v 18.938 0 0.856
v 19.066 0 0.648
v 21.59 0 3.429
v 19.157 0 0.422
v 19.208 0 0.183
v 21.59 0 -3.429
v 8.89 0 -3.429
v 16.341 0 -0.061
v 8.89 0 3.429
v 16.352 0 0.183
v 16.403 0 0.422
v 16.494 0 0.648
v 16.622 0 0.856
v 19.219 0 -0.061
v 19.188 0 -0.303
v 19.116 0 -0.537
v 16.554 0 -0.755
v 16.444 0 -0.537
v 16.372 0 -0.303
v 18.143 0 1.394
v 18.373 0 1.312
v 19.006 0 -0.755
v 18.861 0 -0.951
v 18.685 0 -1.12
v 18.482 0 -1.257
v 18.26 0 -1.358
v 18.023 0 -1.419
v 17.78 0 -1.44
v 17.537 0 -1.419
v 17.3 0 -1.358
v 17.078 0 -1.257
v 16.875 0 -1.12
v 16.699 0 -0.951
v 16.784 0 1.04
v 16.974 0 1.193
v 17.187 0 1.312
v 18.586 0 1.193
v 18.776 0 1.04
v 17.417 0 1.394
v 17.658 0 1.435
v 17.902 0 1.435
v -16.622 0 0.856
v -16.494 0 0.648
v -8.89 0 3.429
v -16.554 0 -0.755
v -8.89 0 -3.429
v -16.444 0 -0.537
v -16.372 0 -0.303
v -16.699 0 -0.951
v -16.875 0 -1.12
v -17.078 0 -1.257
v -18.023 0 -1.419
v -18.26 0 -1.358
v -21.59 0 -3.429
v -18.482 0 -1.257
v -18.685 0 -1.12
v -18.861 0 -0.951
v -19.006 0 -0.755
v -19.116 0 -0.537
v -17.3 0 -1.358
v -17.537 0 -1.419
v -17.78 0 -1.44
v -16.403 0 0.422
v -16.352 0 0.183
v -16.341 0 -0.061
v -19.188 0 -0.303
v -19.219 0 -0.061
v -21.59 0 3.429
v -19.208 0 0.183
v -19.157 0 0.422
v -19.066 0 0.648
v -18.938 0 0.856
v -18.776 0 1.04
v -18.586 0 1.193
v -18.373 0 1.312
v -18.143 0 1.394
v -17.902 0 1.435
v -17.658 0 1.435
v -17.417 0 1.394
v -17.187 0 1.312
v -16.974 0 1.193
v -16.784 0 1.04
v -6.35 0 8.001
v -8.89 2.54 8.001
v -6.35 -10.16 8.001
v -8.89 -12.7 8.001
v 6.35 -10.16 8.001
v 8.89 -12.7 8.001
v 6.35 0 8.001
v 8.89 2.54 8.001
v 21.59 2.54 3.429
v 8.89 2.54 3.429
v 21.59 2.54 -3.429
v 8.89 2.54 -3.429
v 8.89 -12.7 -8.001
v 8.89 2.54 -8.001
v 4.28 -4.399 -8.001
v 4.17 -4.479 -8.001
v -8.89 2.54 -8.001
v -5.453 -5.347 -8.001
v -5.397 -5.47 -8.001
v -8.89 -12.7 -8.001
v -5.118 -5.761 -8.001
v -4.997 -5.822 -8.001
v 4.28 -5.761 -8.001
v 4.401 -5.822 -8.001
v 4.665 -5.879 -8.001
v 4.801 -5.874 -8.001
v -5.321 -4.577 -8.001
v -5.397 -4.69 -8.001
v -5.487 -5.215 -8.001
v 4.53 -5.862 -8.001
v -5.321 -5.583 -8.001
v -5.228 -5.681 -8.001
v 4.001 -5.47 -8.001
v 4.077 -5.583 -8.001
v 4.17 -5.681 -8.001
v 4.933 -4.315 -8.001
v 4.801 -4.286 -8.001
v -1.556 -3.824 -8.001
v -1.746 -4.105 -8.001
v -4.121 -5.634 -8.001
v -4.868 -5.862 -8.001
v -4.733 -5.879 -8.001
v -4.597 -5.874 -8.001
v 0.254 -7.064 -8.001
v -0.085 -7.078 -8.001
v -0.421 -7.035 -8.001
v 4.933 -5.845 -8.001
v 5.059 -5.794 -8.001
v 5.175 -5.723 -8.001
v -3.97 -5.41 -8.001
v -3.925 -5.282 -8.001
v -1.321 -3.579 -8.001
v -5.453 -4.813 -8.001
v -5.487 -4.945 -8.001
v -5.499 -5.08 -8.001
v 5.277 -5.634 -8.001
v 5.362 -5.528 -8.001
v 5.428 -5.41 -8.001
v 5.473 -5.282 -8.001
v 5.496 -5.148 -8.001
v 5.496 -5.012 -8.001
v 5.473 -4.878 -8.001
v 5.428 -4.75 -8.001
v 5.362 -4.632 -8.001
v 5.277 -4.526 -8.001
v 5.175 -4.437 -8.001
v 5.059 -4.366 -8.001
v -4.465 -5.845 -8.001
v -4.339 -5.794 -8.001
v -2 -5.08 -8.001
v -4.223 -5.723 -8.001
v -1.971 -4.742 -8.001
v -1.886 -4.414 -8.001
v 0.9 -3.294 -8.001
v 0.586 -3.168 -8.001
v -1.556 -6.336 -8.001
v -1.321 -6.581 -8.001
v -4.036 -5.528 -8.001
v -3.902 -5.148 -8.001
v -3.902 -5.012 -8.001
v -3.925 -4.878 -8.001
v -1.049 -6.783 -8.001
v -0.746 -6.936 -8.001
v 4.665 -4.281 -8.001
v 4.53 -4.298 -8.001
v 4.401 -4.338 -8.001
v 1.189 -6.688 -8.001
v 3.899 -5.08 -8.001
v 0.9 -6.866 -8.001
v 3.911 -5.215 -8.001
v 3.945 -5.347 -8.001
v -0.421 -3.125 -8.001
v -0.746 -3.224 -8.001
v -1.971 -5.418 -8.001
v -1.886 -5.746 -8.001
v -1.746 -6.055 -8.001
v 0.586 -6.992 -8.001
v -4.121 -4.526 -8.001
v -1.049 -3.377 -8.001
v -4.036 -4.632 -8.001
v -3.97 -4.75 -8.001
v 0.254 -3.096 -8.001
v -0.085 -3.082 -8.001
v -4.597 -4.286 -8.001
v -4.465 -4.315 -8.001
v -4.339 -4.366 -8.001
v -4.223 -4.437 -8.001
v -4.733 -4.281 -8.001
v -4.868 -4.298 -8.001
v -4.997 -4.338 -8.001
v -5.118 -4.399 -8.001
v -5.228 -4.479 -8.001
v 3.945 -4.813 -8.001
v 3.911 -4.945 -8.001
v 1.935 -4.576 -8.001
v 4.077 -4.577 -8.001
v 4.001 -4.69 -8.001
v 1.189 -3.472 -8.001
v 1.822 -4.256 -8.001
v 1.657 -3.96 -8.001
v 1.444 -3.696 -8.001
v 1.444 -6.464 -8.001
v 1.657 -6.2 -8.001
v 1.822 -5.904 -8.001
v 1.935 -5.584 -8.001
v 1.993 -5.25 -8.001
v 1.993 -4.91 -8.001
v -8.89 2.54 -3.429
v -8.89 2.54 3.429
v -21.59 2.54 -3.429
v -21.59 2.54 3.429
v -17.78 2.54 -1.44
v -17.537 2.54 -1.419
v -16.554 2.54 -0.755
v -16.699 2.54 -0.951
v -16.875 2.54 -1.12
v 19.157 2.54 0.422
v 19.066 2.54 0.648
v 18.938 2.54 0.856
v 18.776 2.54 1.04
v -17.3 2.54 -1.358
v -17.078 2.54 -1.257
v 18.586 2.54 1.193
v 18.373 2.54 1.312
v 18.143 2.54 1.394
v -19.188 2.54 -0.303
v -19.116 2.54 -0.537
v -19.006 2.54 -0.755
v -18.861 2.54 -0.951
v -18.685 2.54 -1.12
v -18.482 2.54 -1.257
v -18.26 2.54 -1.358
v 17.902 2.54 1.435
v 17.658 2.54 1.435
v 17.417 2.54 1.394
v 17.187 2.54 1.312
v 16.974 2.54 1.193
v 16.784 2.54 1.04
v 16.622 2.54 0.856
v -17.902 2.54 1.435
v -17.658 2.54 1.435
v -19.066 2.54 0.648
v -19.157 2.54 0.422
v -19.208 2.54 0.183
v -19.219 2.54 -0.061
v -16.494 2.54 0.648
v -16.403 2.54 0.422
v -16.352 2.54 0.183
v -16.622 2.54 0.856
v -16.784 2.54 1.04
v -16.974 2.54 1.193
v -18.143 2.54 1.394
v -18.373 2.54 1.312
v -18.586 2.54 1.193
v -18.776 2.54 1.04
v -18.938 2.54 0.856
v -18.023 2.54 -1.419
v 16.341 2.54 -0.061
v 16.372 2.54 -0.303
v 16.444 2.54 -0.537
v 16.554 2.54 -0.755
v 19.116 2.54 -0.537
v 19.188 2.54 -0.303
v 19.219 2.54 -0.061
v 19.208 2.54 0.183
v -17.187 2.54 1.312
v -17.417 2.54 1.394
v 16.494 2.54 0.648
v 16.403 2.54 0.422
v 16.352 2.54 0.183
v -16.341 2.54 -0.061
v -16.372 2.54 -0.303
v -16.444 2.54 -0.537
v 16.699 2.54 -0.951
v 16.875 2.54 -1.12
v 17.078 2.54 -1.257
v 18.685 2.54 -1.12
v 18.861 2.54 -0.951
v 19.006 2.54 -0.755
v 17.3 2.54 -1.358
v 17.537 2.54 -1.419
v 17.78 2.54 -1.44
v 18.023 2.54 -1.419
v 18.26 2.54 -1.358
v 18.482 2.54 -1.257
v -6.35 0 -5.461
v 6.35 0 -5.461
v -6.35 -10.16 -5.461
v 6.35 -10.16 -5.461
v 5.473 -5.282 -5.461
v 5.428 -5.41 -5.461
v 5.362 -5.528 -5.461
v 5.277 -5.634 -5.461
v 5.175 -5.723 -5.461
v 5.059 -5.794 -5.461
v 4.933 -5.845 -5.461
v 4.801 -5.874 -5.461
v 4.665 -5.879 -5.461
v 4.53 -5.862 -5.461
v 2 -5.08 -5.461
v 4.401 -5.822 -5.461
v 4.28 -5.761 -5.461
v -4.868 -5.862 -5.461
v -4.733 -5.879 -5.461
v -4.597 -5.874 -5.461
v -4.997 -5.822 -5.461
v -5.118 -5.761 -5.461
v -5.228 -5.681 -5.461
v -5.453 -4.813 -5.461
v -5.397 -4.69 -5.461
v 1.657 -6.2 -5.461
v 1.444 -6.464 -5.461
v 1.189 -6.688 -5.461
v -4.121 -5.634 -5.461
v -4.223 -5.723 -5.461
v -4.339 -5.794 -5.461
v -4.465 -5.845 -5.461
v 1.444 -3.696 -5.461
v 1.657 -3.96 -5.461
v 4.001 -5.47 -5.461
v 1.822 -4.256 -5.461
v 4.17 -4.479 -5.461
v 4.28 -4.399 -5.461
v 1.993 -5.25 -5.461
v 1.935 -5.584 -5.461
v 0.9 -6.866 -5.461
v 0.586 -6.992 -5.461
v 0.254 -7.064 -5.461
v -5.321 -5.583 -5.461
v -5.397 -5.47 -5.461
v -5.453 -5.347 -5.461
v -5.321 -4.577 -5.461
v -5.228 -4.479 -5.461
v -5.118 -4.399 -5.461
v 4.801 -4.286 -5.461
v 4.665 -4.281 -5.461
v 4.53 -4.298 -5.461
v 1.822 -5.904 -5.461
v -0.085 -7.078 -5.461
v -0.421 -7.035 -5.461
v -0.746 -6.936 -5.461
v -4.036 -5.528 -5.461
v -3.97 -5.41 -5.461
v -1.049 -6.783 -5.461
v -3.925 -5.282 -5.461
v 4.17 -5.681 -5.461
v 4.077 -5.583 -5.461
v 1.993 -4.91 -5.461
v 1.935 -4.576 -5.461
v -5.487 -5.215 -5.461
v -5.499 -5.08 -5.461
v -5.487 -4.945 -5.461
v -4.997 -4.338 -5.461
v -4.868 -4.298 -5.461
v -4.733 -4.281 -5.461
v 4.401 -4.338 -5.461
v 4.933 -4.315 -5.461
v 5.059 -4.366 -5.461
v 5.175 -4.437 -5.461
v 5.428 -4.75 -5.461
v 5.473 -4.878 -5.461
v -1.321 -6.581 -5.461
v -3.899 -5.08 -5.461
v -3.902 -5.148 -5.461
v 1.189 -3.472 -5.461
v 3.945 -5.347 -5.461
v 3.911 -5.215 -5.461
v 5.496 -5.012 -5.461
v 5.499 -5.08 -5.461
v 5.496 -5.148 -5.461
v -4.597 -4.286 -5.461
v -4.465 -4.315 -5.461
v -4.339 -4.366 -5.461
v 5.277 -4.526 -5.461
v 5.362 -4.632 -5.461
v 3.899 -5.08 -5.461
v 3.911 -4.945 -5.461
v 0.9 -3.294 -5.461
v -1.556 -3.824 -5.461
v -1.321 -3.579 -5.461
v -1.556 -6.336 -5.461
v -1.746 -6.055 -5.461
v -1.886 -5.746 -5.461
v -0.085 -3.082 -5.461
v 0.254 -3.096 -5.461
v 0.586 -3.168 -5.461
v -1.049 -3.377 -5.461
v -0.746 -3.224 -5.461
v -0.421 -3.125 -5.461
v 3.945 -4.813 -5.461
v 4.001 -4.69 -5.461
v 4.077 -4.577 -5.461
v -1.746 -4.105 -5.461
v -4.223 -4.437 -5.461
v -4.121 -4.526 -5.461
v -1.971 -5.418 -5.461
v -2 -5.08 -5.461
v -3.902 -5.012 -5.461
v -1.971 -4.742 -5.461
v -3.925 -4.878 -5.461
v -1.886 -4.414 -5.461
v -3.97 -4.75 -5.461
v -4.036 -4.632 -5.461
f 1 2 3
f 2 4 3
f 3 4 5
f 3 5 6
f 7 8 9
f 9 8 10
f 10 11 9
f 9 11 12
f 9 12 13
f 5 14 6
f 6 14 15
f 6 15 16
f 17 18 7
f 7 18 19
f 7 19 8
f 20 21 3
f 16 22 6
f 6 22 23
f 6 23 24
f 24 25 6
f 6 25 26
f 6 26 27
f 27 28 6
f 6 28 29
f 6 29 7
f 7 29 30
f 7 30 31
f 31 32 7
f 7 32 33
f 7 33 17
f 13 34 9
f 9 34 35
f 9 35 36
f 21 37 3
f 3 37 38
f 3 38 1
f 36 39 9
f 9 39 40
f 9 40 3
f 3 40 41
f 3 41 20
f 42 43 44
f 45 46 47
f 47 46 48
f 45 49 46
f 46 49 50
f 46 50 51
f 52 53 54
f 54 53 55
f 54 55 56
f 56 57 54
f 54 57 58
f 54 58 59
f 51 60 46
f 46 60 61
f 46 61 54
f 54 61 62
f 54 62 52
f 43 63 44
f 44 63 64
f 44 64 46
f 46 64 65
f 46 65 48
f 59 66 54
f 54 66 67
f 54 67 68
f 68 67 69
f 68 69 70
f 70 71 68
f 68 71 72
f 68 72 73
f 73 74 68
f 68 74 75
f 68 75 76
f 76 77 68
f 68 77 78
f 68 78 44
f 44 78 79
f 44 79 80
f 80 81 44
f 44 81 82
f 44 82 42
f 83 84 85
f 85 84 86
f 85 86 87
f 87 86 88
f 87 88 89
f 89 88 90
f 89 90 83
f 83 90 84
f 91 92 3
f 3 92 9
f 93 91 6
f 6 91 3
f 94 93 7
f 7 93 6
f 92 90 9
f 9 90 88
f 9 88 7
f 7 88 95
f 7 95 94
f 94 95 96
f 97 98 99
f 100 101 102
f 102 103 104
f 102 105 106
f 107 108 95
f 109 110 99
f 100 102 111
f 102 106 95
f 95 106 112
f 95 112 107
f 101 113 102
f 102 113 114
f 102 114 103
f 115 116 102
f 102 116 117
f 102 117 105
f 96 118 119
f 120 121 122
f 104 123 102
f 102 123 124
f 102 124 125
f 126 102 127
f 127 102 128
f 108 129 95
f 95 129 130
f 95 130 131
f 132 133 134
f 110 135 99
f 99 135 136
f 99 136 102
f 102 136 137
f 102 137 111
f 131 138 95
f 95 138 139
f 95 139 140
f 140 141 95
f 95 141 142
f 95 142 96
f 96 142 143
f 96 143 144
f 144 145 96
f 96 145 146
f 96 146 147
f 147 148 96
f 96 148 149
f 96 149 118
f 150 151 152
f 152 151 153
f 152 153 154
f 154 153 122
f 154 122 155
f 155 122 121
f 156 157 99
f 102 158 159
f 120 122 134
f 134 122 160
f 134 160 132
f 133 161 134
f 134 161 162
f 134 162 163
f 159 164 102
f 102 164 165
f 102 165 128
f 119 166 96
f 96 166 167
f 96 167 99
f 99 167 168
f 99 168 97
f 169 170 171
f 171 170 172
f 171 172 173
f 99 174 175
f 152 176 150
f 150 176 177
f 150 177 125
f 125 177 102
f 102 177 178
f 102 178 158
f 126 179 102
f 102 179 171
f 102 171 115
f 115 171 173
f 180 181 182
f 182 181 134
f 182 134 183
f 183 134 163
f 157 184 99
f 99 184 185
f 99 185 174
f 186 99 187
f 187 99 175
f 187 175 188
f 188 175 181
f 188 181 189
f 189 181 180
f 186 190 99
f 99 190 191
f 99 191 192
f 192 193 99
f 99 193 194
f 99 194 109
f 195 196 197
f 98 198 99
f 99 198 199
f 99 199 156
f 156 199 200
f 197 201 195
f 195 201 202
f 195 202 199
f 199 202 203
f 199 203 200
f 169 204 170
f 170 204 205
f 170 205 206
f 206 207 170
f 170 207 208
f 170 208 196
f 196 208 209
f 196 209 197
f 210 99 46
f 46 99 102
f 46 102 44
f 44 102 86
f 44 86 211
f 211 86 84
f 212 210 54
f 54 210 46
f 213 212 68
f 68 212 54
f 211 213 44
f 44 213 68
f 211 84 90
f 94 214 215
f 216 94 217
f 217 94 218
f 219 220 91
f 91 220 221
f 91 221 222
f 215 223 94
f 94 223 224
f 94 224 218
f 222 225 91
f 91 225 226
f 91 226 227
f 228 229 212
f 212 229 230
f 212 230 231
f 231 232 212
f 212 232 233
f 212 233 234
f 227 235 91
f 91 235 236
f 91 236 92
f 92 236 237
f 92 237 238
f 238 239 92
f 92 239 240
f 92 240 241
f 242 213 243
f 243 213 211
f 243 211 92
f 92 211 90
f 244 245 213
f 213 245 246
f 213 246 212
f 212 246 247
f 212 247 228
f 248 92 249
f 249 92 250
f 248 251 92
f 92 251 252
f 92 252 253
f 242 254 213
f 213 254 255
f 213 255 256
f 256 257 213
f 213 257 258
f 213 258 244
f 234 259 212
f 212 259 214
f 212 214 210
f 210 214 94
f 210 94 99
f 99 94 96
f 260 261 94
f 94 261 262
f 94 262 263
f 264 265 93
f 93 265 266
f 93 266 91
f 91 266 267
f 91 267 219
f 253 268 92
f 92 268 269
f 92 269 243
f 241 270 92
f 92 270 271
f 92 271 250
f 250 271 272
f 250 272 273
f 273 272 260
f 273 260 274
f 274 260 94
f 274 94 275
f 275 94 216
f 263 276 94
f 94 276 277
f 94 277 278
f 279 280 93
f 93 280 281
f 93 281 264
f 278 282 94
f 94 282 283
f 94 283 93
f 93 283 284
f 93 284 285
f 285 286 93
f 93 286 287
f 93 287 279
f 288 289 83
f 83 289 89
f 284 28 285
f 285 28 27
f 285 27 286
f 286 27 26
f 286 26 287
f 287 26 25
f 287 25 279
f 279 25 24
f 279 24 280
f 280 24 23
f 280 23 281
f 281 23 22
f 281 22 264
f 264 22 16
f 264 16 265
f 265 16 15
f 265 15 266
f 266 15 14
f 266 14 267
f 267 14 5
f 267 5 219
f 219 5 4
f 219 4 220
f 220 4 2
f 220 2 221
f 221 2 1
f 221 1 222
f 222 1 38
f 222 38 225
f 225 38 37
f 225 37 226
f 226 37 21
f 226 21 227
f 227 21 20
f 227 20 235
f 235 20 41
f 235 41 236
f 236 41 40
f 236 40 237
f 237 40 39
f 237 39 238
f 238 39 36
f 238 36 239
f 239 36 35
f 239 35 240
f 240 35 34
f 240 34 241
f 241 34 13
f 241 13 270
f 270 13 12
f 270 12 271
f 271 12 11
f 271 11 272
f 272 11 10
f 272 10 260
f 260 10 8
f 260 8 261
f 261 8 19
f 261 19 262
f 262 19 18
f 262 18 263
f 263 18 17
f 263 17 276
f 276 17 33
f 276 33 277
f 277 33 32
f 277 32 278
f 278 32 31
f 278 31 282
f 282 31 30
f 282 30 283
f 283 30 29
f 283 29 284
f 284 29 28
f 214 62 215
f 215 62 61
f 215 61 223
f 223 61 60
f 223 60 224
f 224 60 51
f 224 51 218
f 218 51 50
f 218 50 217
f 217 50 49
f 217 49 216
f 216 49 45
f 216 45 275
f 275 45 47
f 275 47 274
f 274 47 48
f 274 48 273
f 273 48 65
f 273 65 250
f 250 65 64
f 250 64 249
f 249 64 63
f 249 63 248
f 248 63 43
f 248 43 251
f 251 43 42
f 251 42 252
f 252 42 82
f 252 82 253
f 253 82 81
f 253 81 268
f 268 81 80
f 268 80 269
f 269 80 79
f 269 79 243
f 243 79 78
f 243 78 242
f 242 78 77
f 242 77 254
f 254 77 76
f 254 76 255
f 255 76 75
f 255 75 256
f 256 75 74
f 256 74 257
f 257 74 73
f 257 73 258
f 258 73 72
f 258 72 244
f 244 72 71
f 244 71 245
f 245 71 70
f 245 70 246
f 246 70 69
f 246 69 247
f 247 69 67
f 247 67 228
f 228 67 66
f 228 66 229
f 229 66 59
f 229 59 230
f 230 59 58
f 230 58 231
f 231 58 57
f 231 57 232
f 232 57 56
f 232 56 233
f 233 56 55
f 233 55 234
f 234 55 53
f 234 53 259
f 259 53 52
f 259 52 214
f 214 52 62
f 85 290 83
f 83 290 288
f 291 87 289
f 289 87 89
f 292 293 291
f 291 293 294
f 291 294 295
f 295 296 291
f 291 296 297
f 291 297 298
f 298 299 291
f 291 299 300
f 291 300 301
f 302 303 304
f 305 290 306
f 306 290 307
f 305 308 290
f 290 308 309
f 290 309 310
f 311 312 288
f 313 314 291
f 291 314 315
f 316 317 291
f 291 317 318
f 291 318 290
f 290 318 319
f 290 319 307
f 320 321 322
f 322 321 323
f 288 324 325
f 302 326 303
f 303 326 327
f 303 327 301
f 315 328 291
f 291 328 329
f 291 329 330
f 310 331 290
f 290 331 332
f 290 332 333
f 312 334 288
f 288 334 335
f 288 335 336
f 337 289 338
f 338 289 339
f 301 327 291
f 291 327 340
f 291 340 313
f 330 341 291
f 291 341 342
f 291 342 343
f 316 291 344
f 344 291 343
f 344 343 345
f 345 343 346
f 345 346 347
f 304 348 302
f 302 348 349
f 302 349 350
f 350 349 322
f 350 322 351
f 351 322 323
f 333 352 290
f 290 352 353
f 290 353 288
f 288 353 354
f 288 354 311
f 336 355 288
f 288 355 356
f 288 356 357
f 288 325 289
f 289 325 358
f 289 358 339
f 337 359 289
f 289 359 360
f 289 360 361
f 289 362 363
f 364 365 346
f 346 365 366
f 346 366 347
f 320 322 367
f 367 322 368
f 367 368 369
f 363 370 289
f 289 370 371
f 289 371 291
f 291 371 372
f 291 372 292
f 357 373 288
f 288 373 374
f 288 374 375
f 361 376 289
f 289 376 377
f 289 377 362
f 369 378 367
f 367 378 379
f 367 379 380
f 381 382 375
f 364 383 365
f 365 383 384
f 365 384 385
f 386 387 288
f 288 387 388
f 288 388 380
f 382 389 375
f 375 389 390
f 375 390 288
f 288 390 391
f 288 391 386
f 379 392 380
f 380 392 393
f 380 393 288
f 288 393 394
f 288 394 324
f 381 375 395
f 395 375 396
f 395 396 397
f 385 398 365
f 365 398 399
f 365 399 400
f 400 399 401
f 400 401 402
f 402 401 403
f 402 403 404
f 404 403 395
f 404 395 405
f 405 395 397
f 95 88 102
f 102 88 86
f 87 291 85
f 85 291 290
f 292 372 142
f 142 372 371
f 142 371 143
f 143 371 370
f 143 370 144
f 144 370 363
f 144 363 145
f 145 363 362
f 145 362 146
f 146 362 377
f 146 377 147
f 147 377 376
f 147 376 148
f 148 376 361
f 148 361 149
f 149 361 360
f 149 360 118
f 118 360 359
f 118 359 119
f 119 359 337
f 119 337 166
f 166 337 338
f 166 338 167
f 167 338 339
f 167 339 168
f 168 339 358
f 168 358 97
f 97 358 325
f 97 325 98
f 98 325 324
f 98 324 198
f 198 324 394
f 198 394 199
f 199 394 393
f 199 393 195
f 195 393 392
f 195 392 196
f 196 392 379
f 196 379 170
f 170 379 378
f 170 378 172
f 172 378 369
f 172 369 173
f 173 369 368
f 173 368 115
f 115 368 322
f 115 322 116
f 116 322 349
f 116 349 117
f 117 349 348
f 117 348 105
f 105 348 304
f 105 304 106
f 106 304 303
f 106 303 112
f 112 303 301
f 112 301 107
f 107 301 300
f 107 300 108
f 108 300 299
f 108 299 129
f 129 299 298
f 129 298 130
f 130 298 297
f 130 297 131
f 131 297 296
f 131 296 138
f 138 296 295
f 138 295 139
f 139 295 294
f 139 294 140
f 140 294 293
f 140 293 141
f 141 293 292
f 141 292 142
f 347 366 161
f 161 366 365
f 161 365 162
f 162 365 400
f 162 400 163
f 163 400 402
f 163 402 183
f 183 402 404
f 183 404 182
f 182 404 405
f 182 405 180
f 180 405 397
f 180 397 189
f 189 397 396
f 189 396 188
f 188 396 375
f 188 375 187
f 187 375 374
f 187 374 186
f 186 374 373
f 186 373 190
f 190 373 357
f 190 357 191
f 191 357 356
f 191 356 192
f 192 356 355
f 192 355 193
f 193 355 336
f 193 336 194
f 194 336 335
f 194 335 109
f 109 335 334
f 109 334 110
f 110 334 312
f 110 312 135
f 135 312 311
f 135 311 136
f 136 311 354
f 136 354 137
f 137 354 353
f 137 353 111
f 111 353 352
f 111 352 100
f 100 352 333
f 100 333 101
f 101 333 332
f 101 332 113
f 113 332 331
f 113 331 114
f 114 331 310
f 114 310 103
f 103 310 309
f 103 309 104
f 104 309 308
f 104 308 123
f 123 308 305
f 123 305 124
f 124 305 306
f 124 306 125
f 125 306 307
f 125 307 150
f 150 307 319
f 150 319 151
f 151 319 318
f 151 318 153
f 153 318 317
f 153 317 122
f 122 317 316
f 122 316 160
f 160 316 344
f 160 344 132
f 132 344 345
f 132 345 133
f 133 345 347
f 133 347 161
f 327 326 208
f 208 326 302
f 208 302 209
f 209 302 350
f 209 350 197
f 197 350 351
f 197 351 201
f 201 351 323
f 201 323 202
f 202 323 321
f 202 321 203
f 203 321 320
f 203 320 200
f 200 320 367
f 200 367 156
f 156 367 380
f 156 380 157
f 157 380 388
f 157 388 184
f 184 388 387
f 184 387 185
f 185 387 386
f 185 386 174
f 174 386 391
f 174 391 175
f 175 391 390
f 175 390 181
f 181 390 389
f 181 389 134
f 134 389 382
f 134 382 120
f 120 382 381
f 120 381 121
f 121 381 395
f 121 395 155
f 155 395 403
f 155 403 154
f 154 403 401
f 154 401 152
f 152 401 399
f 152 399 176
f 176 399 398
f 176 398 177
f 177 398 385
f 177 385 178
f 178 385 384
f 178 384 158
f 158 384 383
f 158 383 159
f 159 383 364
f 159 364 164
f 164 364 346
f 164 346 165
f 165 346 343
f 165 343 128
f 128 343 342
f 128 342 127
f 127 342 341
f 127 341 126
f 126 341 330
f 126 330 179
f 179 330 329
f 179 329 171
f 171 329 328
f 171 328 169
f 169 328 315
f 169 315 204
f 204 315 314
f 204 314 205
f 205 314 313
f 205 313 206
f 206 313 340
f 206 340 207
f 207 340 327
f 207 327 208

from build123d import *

# Parameters (mm, degrees)
SKETCH1_W           = 17.78
SKETCH1_H           = 16.002
SKETCH1_W_2         = 12.7
SKETCH1_H_2         = 6.858
BOSS_EXTRUDE1_DEPTH = 2.54
SKETCH2_R           = 1.44
CUT_EXTRUDE1_DEPTH  = 24.164535415
SKETCH3_W           = 12.7
SKETCH3_H           = 2.54
BOSS_EXTRUDE2_DEPTH = 10.16
SKETCH4_W           = 17.78
SKETCH4_H           = 16.002
BOSS_EXTRUDE3_DEPTH = 2.54
SKETCH5_R           = 2
SKETCH5_R_2         = 0.8
CUT_EXTRUDE2_DEPTH  = 30.723426855


with BuildPart() as part:
    # Sketch1 → Boss-Extrude1 (new body)
    with BuildSketch(Plane(origin=(0, 0, 0), x_dir=(1, 0, 0), z_dir=(0, 1, 0))):
        Rectangle(SKETCH1_W, SKETCH1_H)
        with Locations((-15.24, 0)):
            Rectangle(SKETCH1_W_2, SKETCH1_H_2)
        with Locations((15.24, 0)):
            Rectangle(SKETCH1_W_2, SKETCH1_H_2)
    extrude(amount=BOSS_EXTRUDE1_DEPTH)

    # Sketch2 → Cut-Extrude1 (cut, through all)
    with BuildSketch(Plane.XZ):
        with Locations(Location((-17.78, 0, 0), (0, 0, 270))):
            Circle(SKETCH2_R)
        with Locations(Location((17.78, 0, 0), (0, 0, 270))):
            Circle(SKETCH2_R)
    extrude(amount=-CUT_EXTRUDE1_DEPTH, mode=Mode.SUBTRACT)

    # Sketch3 → Boss-Extrude2 (add)
    with BuildSketch(Plane(origin=(0, 0, 0), x_dir=(-1, 0, 0), z_dir=(0, -1, 0))):
        Polygon((6.35, -8.001), (8.89, -8.001), (8.89, -3.429), (8.89, 3.429), (8.89, 8.001), (6.35, 8.001), (6.35, 5.461), align=None)
        with Locations((0, 6.731)):
            Rectangle(SKETCH3_W, SKETCH3_H)
        Polygon((-8.89, -8.001), (-6.35, -8.001), (-6.35, 5.461), (-6.35, 8.001), (-8.89, 8.001), (-8.89, 3.429), (-8.89, -3.429), align=None)
    extrude(amount=BOSS_EXTRUDE2_DEPTH)

    # Sketch4 → Boss-Extrude3 (add)
    with BuildSketch(Plane(origin=(0, -10.16, 0), x_dir=(-1, 0, 0), z_dir=(0, -1, 0))):
        Rectangle(SKETCH4_W, SKETCH4_H)
    extrude(amount=BOSS_EXTRUDE3_DEPTH)

    # Sketch5 → Cut-Extrude2 (cut, through all)
    with BuildSketch(Plane(origin=(0, 0, -8.001), x_dir=(-1, 0, 0), z_dir=(0, 0, -1))):
        with Locations((0, -5.08)):
            Circle(SKETCH5_R)
        with Locations((4.699, -5.08)):
            Circle(SKETCH5_R_2)
        with Locations((-4.699, -5.08)):
            Circle(SKETCH5_R_2)
    extrude(amount=-CUT_EXTRUDE2_DEPTH, mode=Mode.SUBTRACT)


solid = part.part
